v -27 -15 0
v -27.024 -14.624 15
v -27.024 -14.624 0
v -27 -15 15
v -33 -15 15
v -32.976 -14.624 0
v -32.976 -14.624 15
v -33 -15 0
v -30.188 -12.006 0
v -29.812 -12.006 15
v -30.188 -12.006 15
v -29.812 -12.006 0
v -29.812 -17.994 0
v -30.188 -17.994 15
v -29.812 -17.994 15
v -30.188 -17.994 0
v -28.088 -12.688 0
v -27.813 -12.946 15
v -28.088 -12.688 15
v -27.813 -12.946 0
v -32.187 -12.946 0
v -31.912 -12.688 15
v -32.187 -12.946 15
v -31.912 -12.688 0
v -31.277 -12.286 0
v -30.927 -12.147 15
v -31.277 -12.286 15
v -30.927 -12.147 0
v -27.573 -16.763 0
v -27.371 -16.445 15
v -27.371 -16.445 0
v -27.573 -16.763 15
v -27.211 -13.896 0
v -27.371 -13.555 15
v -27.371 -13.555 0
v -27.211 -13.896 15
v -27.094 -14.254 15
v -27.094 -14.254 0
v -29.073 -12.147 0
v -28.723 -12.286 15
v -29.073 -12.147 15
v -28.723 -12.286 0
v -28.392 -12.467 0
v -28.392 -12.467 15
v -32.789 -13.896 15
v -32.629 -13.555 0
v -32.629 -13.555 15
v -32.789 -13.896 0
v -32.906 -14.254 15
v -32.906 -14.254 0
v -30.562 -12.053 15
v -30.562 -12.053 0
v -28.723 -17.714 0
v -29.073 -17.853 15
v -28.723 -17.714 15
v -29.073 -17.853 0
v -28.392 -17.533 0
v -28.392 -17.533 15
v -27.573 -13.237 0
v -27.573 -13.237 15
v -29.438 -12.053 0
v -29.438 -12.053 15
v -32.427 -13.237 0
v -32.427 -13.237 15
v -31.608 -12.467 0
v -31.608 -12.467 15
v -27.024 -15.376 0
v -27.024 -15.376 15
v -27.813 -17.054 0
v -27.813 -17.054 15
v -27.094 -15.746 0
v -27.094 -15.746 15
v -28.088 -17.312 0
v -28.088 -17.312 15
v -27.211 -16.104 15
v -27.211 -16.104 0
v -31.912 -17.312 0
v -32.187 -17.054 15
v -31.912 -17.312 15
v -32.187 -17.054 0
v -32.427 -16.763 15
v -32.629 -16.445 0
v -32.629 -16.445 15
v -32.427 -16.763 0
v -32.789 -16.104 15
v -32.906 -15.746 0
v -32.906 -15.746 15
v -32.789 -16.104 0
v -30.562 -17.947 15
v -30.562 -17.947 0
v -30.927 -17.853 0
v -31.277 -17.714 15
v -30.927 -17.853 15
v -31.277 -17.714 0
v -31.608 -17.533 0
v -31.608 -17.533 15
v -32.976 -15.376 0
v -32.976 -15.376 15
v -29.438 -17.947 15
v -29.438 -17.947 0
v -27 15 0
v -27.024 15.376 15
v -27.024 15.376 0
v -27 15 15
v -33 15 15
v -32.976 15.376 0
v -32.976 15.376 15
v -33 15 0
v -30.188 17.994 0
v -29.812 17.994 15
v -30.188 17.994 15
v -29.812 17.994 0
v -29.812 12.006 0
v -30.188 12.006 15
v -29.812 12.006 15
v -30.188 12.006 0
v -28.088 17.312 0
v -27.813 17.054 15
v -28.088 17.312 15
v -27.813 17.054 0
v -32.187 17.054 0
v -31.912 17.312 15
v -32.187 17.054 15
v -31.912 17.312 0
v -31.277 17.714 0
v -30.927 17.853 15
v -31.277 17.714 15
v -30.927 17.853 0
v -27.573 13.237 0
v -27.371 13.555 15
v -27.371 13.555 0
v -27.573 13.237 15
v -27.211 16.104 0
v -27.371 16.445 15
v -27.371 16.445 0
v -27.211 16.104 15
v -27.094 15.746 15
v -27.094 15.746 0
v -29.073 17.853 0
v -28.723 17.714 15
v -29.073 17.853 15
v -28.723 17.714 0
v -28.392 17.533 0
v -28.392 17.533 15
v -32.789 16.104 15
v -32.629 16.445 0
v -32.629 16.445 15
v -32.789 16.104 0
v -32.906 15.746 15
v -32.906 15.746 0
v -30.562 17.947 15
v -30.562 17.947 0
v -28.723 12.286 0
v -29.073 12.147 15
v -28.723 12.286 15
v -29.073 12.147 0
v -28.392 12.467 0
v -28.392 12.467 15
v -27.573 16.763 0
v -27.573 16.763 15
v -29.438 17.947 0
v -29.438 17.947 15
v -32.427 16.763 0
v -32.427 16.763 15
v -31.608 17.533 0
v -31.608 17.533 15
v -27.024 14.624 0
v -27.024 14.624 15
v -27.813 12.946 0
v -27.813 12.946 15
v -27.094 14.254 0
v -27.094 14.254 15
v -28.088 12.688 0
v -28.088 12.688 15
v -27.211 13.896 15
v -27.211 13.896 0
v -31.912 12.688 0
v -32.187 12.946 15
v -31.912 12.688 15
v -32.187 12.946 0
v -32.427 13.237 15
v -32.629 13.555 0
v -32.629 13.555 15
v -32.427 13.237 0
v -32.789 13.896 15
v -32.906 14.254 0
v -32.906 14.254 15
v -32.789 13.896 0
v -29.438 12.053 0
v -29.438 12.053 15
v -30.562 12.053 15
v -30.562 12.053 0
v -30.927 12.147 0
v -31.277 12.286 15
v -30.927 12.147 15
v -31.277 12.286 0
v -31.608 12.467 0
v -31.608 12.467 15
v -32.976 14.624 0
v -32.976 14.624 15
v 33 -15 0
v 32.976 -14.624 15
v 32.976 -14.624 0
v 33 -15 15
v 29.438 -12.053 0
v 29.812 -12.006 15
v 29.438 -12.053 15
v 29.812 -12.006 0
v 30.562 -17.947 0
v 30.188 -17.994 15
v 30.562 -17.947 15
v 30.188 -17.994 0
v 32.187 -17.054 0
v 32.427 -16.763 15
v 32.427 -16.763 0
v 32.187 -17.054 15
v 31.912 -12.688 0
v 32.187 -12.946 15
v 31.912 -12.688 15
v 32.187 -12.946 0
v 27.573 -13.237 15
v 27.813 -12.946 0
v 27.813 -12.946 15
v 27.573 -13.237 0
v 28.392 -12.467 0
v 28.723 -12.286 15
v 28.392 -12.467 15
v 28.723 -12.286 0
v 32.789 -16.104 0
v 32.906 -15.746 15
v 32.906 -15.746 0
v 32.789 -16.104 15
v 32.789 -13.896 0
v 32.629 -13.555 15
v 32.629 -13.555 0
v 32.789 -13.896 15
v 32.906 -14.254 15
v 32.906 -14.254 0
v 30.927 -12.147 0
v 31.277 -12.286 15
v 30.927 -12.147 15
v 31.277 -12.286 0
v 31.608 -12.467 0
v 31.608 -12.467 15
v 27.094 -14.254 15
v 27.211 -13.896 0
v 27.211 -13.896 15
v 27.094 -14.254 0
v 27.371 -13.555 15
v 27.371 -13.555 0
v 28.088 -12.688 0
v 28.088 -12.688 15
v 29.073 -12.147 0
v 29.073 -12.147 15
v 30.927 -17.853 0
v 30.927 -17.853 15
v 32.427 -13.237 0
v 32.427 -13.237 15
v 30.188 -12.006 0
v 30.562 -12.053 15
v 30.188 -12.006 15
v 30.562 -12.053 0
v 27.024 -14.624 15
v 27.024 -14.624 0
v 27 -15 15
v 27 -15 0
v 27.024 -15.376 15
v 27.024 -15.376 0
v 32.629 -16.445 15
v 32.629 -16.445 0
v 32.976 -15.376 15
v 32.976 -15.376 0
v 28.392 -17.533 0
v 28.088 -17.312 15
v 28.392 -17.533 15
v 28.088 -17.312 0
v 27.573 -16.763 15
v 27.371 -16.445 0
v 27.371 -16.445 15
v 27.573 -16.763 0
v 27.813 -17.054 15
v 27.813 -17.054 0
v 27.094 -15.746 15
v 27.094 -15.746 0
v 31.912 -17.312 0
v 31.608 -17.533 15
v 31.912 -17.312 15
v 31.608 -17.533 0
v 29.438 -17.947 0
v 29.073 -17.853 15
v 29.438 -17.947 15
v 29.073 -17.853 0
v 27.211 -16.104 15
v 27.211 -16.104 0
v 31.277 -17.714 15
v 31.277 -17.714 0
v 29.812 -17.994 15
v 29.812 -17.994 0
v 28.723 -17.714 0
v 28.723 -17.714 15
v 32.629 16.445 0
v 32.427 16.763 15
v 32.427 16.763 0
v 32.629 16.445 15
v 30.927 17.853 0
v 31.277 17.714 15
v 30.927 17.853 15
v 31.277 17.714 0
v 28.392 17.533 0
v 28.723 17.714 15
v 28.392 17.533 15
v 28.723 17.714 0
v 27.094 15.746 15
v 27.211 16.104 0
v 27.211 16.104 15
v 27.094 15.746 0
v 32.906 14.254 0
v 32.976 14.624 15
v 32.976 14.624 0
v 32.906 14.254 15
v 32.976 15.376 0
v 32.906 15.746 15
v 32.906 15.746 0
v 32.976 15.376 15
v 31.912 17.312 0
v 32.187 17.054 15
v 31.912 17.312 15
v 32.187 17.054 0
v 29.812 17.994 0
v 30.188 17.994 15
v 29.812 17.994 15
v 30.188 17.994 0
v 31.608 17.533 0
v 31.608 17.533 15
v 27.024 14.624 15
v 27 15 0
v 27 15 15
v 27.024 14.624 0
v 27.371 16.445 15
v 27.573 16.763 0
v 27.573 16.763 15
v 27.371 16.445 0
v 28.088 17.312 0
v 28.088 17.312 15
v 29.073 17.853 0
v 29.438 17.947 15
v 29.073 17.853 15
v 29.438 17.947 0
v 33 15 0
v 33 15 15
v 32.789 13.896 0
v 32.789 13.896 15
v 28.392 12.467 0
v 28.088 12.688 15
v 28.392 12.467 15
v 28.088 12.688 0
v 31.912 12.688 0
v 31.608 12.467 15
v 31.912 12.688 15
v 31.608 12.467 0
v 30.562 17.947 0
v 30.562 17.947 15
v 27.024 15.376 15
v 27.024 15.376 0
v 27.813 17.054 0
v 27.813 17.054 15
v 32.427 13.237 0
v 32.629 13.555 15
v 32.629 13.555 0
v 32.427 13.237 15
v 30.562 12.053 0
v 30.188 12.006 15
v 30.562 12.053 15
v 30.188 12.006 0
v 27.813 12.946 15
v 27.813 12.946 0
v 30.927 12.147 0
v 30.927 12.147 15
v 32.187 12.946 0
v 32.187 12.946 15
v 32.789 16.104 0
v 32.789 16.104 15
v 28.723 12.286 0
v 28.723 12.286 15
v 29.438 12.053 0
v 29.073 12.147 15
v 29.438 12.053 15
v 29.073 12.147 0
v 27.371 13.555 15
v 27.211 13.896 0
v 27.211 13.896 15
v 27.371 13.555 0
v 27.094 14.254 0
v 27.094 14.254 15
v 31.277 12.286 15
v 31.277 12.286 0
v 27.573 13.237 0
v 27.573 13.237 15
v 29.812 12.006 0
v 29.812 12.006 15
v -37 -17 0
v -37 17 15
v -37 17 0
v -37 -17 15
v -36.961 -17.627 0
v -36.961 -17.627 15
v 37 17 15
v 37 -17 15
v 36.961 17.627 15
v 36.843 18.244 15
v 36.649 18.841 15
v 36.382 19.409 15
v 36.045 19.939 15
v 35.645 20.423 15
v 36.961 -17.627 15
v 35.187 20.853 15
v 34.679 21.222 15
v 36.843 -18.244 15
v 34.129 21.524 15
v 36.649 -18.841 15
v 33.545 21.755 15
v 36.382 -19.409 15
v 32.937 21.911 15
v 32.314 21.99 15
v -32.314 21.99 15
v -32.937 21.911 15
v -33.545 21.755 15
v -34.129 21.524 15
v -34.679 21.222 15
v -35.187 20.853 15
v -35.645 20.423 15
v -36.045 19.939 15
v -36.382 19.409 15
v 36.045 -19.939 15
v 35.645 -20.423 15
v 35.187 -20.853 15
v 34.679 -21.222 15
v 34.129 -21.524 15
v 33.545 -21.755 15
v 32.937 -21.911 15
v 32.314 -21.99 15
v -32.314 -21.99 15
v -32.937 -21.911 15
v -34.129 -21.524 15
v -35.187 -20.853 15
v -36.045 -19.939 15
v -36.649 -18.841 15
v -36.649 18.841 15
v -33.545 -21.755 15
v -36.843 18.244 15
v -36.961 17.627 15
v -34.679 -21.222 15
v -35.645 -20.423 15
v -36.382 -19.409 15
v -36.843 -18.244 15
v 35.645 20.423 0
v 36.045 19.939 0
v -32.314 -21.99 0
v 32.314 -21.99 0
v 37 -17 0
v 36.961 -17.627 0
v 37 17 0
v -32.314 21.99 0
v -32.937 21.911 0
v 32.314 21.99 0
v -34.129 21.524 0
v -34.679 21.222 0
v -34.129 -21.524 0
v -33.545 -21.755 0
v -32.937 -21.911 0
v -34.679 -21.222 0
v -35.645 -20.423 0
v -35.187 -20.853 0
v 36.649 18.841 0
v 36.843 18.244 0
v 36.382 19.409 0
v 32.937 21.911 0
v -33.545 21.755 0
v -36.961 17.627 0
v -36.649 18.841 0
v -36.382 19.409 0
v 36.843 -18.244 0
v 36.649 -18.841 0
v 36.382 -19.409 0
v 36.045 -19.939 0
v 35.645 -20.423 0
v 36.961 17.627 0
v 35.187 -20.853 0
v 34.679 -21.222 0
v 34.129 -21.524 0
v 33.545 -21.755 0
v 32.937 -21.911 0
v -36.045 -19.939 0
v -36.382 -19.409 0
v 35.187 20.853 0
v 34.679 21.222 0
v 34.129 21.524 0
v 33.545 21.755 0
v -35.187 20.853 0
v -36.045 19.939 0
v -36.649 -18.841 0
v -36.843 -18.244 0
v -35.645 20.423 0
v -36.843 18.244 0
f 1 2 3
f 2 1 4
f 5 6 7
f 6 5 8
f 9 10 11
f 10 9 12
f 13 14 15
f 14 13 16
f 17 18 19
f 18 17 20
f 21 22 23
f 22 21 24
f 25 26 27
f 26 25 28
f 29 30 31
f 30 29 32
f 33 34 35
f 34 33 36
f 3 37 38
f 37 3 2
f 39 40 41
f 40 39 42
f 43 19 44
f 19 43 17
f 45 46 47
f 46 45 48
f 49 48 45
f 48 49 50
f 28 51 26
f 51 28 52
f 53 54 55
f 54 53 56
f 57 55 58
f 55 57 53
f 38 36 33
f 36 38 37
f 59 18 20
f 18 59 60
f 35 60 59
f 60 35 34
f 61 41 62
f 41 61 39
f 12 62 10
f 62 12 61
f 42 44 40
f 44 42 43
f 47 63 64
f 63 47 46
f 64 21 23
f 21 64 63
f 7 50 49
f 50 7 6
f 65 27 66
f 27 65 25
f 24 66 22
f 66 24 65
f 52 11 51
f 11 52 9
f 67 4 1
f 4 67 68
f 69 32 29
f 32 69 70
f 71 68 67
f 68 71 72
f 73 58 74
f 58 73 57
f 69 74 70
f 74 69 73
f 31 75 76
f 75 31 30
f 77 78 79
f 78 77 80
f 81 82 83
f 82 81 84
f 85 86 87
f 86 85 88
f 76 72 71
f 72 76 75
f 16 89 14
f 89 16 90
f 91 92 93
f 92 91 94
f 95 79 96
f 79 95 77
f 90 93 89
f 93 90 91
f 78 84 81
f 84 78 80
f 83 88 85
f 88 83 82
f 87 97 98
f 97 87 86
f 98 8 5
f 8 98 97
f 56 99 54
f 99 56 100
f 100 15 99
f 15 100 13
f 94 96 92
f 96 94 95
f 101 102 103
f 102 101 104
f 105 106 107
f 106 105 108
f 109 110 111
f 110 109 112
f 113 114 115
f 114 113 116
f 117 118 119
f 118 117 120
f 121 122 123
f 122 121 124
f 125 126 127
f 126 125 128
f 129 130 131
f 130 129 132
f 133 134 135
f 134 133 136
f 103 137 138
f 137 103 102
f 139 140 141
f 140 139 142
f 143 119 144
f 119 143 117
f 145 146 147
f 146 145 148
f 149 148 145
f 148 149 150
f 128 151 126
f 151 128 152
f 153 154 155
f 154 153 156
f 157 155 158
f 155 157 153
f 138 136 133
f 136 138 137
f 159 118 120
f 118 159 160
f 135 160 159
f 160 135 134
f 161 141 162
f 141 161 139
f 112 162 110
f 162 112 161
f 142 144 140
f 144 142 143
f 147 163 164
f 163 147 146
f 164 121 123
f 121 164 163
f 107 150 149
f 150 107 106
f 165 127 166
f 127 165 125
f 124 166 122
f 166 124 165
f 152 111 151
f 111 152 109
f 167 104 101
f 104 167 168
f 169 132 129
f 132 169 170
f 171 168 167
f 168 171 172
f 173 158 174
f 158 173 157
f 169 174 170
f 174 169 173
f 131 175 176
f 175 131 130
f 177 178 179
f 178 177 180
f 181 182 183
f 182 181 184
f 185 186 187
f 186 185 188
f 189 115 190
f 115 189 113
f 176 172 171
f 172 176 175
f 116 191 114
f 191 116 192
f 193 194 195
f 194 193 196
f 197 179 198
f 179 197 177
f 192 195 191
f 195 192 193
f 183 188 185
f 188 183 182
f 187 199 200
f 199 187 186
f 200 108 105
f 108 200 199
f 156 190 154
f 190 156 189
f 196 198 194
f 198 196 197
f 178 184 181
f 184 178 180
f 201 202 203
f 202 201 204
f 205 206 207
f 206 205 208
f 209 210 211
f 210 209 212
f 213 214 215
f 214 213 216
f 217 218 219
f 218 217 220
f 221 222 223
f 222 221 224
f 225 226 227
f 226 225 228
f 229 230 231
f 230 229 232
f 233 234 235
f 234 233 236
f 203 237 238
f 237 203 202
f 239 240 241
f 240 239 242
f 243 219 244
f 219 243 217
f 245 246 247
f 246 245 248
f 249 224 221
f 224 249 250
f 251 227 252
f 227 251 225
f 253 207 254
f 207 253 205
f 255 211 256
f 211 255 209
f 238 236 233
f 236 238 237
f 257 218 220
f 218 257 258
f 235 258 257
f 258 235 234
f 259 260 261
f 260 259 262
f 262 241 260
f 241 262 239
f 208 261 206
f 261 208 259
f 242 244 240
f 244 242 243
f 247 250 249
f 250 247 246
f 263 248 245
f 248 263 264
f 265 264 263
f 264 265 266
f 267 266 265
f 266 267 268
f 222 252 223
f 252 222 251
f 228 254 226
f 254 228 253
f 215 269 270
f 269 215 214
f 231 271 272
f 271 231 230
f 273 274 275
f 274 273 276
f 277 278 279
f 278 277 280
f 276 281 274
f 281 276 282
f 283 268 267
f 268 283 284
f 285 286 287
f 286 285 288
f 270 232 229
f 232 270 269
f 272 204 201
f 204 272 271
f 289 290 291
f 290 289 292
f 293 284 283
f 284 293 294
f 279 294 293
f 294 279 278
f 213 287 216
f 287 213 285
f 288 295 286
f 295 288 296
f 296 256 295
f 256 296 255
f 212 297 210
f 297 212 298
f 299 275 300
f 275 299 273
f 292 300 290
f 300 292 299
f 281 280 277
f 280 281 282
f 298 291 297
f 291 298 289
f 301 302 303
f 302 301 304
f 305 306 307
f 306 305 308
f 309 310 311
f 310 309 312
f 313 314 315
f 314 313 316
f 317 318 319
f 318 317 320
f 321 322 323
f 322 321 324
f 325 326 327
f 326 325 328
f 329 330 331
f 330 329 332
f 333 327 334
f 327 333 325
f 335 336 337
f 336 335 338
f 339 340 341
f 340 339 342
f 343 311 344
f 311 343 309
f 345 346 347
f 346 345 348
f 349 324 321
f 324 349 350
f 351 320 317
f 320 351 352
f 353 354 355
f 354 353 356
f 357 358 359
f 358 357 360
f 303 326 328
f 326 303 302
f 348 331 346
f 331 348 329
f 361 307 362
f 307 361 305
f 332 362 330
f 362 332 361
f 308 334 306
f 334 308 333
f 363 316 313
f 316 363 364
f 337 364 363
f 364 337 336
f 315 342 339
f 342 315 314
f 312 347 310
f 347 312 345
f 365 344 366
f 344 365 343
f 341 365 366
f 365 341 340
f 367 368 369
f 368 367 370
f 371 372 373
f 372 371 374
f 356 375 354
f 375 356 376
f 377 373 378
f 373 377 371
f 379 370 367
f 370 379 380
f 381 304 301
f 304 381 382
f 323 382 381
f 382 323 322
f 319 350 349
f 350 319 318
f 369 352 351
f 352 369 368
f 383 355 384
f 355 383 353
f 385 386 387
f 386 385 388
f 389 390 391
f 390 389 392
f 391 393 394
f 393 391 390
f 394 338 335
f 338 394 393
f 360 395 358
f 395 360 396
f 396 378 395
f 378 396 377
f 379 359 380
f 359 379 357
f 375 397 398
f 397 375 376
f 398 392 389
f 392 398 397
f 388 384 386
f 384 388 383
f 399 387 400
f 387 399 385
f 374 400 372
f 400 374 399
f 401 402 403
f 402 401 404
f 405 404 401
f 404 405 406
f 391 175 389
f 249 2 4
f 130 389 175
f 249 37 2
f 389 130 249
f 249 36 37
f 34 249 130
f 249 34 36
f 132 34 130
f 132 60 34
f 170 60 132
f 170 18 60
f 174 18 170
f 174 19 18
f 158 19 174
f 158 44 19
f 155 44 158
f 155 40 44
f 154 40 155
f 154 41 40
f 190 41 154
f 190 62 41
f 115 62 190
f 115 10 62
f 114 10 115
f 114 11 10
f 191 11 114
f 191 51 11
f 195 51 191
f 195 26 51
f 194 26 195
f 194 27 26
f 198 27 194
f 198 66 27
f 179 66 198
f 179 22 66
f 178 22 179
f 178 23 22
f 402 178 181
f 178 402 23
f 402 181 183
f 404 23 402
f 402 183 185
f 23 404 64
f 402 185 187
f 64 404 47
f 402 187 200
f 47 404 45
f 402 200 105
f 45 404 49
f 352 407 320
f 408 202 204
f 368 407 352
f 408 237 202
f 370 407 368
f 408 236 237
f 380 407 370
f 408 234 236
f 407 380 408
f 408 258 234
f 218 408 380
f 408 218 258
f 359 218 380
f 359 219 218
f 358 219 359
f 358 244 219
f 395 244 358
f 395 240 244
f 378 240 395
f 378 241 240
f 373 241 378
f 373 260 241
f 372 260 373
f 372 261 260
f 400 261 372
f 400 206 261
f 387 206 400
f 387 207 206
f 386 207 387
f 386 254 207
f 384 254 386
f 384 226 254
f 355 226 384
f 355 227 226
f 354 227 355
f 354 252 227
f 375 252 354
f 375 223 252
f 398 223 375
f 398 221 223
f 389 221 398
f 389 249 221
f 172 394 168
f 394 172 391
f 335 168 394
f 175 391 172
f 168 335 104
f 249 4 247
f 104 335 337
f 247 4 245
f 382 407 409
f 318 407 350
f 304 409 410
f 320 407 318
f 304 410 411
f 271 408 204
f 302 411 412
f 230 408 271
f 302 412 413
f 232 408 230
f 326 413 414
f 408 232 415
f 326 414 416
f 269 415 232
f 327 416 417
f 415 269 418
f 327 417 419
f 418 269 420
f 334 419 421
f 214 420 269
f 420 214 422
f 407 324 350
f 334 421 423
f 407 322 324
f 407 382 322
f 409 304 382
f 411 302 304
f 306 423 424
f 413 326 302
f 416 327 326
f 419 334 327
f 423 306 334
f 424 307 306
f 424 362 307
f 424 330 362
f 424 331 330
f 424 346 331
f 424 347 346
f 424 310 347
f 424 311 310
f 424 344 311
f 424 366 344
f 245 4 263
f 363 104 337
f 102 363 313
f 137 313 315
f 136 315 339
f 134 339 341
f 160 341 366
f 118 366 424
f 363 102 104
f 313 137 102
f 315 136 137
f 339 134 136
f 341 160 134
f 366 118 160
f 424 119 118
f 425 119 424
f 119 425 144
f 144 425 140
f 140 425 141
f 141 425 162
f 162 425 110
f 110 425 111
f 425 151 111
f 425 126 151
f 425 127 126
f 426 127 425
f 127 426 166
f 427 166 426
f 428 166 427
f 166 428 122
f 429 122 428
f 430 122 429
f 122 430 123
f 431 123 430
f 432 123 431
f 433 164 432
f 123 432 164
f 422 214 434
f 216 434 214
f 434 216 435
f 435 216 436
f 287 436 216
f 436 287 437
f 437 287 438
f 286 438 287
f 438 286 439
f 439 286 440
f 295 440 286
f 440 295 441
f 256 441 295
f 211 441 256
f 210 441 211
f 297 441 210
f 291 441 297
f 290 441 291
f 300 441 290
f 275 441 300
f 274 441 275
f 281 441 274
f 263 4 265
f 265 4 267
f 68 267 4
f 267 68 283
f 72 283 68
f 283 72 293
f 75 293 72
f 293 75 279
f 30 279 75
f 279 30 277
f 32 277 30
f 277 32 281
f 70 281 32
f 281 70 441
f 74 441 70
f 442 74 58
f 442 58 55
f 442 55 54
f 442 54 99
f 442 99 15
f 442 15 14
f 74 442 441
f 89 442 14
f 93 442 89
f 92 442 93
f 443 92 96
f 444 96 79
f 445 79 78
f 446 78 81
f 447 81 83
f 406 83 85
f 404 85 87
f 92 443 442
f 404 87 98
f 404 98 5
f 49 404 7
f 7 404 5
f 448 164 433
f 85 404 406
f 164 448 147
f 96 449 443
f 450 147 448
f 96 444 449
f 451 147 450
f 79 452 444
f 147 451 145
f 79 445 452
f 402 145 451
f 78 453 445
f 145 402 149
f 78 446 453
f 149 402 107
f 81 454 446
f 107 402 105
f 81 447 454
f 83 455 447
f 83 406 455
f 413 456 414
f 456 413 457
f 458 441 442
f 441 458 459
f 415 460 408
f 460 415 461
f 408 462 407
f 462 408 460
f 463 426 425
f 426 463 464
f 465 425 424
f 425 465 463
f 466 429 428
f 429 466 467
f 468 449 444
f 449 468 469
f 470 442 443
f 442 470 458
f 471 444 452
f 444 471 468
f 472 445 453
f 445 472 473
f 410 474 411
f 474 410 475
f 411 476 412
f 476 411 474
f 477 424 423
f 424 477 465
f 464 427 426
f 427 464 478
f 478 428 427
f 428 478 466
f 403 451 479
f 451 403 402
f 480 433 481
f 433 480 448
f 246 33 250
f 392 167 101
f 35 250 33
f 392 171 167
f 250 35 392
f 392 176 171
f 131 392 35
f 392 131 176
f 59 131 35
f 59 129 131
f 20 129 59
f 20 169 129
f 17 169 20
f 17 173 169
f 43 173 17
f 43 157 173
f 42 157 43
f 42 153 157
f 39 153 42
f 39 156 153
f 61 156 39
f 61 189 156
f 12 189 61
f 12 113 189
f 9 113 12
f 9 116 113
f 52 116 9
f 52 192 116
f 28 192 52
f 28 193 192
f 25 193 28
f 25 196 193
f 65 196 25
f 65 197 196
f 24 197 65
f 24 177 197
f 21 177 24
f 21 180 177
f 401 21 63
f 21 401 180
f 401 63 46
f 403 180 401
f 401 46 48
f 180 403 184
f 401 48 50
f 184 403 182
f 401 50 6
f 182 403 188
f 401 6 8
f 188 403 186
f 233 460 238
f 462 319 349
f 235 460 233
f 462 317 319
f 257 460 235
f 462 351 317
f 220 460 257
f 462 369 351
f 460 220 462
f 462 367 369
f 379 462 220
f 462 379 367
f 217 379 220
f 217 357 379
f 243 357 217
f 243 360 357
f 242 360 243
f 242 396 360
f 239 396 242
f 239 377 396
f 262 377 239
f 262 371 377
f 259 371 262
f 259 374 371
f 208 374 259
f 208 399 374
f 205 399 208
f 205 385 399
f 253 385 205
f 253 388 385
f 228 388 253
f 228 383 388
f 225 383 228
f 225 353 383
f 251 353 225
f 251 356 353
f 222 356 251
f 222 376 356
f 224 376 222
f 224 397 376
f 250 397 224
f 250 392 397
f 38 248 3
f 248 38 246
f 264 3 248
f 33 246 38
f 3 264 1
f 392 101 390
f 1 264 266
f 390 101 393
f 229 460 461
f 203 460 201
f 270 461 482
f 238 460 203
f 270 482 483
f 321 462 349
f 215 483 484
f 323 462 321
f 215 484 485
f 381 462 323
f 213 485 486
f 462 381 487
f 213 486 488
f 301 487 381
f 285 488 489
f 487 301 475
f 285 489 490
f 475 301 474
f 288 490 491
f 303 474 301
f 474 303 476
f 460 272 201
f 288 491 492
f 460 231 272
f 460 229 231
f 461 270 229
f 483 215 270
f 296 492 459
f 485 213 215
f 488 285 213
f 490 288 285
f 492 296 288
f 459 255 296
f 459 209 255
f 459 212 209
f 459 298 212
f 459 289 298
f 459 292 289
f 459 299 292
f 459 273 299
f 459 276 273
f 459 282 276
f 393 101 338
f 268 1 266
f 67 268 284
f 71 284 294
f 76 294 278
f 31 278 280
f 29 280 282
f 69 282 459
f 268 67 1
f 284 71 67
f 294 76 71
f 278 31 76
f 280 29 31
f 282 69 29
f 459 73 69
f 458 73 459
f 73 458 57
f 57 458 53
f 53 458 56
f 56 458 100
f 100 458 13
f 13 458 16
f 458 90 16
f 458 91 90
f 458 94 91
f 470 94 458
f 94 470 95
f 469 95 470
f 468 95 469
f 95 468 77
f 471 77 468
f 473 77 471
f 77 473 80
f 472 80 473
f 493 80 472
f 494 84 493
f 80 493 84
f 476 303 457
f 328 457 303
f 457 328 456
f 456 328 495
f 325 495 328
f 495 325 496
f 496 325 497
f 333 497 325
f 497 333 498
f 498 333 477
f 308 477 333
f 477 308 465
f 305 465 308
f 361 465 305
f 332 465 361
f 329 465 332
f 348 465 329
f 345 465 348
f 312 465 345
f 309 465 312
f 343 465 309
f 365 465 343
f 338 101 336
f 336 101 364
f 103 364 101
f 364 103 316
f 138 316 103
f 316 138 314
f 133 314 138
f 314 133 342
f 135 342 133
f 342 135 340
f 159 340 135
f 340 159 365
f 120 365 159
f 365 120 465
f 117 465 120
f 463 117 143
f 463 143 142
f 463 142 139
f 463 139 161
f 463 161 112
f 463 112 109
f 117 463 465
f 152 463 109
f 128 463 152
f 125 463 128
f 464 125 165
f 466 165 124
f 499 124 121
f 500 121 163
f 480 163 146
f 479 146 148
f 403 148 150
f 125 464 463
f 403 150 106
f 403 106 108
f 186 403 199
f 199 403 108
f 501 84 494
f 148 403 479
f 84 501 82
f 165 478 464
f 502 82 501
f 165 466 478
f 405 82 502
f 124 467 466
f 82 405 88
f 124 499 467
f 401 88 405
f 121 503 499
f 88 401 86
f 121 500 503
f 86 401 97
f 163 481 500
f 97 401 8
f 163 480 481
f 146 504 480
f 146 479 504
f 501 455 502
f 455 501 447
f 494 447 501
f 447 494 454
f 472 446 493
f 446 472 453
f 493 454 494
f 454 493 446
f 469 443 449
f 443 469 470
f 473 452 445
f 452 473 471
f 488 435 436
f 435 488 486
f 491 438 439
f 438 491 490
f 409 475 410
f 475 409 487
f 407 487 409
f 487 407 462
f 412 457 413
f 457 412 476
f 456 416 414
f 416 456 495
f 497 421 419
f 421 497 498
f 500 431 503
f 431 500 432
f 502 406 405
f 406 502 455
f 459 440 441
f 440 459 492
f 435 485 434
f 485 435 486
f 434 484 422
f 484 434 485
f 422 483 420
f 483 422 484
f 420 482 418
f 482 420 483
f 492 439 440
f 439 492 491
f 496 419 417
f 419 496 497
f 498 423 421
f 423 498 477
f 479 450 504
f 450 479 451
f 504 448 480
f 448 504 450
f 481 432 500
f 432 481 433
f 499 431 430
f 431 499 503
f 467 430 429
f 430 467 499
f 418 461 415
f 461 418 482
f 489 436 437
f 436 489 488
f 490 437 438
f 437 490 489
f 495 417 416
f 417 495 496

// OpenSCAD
$fn = 50;


difference() {
	union() {
		hull() {
			translate(v = [-32.0000000000, 17.0000000000, 0]) {
				cylinder(h = 15, r = 5);
			}
			translate(v = [32.0000000000, 17.0000000000, 0]) {
				cylinder(h = 15, r = 5);
			}
			translate(v = [-32.0000000000, -17.0000000000, 0]) {
				cylinder(h = 15, r = 5);
			}
			translate(v = [32.0000000000, -17.0000000000, 0]) {
				cylinder(h = 15, r = 5);
			}
		}
	}
	union() {
		translate(v = [-30.0000000000, -15.0000000000, -100.0000000000]) {
			cylinder(h = 200, r = 3.0000000000);
		}
		translate(v = [-30.0000000000, 15.0000000000, -100.0000000000]) {
			cylinder(h = 200, r = 3.0000000000);
		}
		translate(v = [30.0000000000, -15.0000000000, -100.0000000000]) {
			cylinder(h = 200, r = 3.0000000000);
		}
		translate(v = [30.0000000000, 15.0000000000, -100.0000000000]) {
			cylinder(h = 200, r = 3.0000000000);
		}
	}
}
